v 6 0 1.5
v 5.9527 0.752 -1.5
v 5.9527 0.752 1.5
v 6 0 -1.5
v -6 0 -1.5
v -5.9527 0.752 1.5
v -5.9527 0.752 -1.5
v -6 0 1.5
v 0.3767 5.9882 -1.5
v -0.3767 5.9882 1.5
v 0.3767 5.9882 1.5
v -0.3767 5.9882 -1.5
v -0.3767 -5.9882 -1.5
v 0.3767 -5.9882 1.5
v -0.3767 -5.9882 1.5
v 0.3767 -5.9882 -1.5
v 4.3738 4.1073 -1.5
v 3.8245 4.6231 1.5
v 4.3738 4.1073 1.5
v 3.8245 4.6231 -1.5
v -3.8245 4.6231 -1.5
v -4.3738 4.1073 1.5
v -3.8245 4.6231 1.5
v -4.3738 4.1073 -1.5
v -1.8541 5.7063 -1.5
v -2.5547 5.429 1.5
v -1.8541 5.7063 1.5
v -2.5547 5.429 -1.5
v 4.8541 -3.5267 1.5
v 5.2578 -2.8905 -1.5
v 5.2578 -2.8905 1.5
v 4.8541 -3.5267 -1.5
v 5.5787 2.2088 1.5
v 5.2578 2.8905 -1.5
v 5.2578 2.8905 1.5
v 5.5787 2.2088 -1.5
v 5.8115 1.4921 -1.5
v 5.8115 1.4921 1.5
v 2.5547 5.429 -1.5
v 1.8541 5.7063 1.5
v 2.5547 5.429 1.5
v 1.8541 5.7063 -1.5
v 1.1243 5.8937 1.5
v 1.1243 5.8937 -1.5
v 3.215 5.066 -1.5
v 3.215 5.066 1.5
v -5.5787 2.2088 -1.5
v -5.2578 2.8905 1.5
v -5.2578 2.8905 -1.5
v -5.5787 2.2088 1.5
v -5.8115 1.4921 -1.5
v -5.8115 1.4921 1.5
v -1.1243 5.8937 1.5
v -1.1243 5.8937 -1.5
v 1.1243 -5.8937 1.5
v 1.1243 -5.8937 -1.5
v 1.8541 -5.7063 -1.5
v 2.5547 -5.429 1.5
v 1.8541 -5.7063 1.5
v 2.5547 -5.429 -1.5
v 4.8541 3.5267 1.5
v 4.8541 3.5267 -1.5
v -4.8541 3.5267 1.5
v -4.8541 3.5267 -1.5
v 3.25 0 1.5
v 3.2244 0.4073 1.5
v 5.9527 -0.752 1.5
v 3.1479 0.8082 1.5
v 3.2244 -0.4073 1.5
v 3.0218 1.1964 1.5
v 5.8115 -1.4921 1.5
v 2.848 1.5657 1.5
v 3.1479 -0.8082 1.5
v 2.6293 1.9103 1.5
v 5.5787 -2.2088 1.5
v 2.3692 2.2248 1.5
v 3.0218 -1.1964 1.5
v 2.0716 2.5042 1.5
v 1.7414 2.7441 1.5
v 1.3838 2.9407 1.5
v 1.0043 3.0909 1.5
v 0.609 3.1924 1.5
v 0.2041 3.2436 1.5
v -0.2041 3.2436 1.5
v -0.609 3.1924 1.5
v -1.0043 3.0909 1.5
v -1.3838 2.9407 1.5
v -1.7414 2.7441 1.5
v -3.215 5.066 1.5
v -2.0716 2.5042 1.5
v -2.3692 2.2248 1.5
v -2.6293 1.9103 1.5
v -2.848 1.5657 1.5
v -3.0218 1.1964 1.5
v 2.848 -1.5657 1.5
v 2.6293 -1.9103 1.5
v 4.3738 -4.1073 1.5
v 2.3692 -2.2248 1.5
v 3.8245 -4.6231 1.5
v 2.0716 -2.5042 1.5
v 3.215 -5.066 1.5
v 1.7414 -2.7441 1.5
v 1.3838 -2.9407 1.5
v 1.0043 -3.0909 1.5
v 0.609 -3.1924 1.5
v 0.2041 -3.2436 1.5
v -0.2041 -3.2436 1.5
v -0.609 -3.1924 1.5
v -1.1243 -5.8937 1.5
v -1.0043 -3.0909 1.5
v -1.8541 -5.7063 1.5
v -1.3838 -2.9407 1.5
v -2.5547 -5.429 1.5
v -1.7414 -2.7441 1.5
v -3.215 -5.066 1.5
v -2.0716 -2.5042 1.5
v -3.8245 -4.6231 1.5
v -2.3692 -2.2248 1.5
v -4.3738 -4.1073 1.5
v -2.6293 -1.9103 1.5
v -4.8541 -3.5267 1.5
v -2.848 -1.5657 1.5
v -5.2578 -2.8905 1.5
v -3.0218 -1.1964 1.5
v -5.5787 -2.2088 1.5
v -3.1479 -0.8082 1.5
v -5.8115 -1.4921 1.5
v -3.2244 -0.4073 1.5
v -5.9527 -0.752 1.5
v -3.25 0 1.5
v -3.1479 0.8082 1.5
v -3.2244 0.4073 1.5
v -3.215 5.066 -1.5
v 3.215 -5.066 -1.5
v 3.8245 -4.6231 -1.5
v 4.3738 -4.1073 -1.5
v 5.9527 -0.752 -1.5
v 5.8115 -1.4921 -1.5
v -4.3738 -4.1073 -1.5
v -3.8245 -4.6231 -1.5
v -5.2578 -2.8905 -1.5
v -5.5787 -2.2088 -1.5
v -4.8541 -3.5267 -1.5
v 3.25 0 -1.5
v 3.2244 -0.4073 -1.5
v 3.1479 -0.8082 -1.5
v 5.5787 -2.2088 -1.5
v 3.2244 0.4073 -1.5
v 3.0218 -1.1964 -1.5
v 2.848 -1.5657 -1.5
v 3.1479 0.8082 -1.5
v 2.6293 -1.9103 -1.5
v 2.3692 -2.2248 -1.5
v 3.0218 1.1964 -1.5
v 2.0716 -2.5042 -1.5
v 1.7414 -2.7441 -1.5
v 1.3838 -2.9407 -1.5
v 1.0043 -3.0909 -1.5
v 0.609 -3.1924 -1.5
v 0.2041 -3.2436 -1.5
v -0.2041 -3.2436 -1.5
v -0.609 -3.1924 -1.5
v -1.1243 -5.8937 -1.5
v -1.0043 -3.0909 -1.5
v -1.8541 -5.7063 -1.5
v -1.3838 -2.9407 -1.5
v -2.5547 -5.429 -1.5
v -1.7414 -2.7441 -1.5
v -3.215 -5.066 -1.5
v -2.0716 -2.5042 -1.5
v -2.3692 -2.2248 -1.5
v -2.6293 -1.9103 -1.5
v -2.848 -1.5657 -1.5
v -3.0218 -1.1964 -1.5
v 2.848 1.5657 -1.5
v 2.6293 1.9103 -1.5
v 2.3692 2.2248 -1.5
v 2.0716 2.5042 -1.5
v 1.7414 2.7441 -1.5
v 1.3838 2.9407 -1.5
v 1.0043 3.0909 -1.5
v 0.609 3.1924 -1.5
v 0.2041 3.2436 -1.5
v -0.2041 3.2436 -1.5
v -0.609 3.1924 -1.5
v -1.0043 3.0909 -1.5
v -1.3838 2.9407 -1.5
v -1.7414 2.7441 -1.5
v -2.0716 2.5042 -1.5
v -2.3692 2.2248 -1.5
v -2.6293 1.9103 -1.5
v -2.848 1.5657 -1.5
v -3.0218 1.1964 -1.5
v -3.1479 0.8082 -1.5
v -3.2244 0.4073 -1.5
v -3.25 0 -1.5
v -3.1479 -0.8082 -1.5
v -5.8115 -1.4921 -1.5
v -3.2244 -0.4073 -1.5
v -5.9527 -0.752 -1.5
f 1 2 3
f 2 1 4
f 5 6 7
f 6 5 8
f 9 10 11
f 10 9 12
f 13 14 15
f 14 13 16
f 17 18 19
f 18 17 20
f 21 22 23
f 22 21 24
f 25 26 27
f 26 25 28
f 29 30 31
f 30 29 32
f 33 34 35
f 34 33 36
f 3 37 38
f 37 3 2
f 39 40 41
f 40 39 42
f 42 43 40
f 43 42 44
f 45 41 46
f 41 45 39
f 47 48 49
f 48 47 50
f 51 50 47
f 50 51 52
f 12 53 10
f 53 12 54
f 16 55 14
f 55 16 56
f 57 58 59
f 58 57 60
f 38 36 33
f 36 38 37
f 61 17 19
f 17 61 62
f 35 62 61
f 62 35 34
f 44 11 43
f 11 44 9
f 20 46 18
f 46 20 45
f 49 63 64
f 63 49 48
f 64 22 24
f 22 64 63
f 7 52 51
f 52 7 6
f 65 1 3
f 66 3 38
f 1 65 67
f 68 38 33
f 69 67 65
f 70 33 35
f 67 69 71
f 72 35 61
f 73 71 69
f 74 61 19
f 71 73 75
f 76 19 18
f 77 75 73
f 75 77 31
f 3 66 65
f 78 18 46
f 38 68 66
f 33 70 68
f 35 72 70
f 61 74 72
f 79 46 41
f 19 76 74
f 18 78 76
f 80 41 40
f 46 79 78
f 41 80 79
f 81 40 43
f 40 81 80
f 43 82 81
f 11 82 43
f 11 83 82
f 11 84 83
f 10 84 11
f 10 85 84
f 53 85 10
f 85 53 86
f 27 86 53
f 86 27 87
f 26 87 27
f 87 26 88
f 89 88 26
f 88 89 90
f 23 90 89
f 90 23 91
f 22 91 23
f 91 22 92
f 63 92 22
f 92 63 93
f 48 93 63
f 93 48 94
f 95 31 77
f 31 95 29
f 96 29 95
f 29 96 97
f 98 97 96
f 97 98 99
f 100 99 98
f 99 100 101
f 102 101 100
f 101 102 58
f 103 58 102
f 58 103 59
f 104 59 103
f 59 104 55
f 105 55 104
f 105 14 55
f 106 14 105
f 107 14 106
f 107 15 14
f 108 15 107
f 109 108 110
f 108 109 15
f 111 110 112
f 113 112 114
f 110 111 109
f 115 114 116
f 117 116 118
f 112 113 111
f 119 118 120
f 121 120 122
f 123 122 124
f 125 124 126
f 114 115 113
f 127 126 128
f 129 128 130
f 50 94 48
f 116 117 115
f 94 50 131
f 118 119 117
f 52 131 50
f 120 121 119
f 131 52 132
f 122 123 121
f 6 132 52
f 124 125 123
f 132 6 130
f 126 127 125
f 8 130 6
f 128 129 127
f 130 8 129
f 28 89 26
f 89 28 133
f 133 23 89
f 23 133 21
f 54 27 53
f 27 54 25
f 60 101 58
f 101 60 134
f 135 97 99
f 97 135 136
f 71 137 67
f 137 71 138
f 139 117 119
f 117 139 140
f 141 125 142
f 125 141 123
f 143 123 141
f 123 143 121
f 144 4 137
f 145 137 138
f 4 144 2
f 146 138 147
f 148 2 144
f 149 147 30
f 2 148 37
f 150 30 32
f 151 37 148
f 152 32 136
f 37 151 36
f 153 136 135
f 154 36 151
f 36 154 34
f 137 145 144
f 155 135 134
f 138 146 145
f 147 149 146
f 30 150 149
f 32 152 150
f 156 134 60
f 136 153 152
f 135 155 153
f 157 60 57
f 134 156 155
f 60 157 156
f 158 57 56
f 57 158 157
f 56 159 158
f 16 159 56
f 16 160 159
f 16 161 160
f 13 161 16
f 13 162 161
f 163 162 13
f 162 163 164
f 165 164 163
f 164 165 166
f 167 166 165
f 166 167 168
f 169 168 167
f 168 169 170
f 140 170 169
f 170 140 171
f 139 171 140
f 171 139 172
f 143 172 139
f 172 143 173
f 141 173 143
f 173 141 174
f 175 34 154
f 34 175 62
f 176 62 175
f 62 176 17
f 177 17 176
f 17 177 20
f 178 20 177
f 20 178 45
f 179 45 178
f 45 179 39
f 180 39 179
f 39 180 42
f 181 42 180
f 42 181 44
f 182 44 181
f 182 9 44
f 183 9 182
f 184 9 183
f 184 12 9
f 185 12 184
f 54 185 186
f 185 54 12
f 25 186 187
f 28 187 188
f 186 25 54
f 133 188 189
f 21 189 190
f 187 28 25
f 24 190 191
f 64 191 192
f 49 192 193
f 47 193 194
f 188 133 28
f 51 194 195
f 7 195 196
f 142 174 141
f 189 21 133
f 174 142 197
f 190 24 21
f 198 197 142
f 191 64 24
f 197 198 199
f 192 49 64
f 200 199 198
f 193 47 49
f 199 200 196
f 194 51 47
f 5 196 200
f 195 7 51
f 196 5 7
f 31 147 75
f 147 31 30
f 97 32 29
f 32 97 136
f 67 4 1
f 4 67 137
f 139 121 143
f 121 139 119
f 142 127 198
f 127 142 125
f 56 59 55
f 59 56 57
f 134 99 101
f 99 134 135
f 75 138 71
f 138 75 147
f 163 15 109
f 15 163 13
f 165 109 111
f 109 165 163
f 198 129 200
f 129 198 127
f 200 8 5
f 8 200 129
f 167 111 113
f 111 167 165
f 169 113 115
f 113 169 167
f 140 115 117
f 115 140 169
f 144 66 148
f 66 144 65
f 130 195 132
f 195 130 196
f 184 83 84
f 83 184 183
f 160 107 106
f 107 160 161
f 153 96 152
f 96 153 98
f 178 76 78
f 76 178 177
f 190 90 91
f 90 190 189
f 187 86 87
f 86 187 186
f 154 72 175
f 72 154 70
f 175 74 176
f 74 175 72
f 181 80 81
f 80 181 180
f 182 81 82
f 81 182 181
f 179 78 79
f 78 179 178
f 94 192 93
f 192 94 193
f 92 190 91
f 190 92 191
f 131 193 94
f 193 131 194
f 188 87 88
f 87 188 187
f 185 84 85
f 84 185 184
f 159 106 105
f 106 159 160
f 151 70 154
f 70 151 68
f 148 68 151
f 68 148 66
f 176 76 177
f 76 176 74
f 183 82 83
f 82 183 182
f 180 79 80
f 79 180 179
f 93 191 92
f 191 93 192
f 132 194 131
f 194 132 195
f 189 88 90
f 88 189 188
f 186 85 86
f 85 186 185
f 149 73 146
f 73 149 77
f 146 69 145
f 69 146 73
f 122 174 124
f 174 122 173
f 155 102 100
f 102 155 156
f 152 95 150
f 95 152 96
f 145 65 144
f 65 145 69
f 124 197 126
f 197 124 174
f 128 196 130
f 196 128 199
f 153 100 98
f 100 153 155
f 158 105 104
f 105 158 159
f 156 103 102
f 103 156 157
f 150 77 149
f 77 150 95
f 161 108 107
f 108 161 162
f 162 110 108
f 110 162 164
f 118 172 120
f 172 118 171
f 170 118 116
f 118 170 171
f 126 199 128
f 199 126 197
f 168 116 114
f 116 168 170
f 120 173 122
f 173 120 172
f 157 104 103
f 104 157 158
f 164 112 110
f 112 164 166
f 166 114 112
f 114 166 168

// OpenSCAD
$fn = 50;


difference() {
	union() {
		translate(v = [0, 0, -1.5000000000]) {
			cylinder(h = 3, r = 6.0000000000);
		}
	}
	union() {
		translate(v = [0, 0, -100.0000000000]) {
			cylinder(h = 200, r = 3.2500000000);
		}
	}
}
